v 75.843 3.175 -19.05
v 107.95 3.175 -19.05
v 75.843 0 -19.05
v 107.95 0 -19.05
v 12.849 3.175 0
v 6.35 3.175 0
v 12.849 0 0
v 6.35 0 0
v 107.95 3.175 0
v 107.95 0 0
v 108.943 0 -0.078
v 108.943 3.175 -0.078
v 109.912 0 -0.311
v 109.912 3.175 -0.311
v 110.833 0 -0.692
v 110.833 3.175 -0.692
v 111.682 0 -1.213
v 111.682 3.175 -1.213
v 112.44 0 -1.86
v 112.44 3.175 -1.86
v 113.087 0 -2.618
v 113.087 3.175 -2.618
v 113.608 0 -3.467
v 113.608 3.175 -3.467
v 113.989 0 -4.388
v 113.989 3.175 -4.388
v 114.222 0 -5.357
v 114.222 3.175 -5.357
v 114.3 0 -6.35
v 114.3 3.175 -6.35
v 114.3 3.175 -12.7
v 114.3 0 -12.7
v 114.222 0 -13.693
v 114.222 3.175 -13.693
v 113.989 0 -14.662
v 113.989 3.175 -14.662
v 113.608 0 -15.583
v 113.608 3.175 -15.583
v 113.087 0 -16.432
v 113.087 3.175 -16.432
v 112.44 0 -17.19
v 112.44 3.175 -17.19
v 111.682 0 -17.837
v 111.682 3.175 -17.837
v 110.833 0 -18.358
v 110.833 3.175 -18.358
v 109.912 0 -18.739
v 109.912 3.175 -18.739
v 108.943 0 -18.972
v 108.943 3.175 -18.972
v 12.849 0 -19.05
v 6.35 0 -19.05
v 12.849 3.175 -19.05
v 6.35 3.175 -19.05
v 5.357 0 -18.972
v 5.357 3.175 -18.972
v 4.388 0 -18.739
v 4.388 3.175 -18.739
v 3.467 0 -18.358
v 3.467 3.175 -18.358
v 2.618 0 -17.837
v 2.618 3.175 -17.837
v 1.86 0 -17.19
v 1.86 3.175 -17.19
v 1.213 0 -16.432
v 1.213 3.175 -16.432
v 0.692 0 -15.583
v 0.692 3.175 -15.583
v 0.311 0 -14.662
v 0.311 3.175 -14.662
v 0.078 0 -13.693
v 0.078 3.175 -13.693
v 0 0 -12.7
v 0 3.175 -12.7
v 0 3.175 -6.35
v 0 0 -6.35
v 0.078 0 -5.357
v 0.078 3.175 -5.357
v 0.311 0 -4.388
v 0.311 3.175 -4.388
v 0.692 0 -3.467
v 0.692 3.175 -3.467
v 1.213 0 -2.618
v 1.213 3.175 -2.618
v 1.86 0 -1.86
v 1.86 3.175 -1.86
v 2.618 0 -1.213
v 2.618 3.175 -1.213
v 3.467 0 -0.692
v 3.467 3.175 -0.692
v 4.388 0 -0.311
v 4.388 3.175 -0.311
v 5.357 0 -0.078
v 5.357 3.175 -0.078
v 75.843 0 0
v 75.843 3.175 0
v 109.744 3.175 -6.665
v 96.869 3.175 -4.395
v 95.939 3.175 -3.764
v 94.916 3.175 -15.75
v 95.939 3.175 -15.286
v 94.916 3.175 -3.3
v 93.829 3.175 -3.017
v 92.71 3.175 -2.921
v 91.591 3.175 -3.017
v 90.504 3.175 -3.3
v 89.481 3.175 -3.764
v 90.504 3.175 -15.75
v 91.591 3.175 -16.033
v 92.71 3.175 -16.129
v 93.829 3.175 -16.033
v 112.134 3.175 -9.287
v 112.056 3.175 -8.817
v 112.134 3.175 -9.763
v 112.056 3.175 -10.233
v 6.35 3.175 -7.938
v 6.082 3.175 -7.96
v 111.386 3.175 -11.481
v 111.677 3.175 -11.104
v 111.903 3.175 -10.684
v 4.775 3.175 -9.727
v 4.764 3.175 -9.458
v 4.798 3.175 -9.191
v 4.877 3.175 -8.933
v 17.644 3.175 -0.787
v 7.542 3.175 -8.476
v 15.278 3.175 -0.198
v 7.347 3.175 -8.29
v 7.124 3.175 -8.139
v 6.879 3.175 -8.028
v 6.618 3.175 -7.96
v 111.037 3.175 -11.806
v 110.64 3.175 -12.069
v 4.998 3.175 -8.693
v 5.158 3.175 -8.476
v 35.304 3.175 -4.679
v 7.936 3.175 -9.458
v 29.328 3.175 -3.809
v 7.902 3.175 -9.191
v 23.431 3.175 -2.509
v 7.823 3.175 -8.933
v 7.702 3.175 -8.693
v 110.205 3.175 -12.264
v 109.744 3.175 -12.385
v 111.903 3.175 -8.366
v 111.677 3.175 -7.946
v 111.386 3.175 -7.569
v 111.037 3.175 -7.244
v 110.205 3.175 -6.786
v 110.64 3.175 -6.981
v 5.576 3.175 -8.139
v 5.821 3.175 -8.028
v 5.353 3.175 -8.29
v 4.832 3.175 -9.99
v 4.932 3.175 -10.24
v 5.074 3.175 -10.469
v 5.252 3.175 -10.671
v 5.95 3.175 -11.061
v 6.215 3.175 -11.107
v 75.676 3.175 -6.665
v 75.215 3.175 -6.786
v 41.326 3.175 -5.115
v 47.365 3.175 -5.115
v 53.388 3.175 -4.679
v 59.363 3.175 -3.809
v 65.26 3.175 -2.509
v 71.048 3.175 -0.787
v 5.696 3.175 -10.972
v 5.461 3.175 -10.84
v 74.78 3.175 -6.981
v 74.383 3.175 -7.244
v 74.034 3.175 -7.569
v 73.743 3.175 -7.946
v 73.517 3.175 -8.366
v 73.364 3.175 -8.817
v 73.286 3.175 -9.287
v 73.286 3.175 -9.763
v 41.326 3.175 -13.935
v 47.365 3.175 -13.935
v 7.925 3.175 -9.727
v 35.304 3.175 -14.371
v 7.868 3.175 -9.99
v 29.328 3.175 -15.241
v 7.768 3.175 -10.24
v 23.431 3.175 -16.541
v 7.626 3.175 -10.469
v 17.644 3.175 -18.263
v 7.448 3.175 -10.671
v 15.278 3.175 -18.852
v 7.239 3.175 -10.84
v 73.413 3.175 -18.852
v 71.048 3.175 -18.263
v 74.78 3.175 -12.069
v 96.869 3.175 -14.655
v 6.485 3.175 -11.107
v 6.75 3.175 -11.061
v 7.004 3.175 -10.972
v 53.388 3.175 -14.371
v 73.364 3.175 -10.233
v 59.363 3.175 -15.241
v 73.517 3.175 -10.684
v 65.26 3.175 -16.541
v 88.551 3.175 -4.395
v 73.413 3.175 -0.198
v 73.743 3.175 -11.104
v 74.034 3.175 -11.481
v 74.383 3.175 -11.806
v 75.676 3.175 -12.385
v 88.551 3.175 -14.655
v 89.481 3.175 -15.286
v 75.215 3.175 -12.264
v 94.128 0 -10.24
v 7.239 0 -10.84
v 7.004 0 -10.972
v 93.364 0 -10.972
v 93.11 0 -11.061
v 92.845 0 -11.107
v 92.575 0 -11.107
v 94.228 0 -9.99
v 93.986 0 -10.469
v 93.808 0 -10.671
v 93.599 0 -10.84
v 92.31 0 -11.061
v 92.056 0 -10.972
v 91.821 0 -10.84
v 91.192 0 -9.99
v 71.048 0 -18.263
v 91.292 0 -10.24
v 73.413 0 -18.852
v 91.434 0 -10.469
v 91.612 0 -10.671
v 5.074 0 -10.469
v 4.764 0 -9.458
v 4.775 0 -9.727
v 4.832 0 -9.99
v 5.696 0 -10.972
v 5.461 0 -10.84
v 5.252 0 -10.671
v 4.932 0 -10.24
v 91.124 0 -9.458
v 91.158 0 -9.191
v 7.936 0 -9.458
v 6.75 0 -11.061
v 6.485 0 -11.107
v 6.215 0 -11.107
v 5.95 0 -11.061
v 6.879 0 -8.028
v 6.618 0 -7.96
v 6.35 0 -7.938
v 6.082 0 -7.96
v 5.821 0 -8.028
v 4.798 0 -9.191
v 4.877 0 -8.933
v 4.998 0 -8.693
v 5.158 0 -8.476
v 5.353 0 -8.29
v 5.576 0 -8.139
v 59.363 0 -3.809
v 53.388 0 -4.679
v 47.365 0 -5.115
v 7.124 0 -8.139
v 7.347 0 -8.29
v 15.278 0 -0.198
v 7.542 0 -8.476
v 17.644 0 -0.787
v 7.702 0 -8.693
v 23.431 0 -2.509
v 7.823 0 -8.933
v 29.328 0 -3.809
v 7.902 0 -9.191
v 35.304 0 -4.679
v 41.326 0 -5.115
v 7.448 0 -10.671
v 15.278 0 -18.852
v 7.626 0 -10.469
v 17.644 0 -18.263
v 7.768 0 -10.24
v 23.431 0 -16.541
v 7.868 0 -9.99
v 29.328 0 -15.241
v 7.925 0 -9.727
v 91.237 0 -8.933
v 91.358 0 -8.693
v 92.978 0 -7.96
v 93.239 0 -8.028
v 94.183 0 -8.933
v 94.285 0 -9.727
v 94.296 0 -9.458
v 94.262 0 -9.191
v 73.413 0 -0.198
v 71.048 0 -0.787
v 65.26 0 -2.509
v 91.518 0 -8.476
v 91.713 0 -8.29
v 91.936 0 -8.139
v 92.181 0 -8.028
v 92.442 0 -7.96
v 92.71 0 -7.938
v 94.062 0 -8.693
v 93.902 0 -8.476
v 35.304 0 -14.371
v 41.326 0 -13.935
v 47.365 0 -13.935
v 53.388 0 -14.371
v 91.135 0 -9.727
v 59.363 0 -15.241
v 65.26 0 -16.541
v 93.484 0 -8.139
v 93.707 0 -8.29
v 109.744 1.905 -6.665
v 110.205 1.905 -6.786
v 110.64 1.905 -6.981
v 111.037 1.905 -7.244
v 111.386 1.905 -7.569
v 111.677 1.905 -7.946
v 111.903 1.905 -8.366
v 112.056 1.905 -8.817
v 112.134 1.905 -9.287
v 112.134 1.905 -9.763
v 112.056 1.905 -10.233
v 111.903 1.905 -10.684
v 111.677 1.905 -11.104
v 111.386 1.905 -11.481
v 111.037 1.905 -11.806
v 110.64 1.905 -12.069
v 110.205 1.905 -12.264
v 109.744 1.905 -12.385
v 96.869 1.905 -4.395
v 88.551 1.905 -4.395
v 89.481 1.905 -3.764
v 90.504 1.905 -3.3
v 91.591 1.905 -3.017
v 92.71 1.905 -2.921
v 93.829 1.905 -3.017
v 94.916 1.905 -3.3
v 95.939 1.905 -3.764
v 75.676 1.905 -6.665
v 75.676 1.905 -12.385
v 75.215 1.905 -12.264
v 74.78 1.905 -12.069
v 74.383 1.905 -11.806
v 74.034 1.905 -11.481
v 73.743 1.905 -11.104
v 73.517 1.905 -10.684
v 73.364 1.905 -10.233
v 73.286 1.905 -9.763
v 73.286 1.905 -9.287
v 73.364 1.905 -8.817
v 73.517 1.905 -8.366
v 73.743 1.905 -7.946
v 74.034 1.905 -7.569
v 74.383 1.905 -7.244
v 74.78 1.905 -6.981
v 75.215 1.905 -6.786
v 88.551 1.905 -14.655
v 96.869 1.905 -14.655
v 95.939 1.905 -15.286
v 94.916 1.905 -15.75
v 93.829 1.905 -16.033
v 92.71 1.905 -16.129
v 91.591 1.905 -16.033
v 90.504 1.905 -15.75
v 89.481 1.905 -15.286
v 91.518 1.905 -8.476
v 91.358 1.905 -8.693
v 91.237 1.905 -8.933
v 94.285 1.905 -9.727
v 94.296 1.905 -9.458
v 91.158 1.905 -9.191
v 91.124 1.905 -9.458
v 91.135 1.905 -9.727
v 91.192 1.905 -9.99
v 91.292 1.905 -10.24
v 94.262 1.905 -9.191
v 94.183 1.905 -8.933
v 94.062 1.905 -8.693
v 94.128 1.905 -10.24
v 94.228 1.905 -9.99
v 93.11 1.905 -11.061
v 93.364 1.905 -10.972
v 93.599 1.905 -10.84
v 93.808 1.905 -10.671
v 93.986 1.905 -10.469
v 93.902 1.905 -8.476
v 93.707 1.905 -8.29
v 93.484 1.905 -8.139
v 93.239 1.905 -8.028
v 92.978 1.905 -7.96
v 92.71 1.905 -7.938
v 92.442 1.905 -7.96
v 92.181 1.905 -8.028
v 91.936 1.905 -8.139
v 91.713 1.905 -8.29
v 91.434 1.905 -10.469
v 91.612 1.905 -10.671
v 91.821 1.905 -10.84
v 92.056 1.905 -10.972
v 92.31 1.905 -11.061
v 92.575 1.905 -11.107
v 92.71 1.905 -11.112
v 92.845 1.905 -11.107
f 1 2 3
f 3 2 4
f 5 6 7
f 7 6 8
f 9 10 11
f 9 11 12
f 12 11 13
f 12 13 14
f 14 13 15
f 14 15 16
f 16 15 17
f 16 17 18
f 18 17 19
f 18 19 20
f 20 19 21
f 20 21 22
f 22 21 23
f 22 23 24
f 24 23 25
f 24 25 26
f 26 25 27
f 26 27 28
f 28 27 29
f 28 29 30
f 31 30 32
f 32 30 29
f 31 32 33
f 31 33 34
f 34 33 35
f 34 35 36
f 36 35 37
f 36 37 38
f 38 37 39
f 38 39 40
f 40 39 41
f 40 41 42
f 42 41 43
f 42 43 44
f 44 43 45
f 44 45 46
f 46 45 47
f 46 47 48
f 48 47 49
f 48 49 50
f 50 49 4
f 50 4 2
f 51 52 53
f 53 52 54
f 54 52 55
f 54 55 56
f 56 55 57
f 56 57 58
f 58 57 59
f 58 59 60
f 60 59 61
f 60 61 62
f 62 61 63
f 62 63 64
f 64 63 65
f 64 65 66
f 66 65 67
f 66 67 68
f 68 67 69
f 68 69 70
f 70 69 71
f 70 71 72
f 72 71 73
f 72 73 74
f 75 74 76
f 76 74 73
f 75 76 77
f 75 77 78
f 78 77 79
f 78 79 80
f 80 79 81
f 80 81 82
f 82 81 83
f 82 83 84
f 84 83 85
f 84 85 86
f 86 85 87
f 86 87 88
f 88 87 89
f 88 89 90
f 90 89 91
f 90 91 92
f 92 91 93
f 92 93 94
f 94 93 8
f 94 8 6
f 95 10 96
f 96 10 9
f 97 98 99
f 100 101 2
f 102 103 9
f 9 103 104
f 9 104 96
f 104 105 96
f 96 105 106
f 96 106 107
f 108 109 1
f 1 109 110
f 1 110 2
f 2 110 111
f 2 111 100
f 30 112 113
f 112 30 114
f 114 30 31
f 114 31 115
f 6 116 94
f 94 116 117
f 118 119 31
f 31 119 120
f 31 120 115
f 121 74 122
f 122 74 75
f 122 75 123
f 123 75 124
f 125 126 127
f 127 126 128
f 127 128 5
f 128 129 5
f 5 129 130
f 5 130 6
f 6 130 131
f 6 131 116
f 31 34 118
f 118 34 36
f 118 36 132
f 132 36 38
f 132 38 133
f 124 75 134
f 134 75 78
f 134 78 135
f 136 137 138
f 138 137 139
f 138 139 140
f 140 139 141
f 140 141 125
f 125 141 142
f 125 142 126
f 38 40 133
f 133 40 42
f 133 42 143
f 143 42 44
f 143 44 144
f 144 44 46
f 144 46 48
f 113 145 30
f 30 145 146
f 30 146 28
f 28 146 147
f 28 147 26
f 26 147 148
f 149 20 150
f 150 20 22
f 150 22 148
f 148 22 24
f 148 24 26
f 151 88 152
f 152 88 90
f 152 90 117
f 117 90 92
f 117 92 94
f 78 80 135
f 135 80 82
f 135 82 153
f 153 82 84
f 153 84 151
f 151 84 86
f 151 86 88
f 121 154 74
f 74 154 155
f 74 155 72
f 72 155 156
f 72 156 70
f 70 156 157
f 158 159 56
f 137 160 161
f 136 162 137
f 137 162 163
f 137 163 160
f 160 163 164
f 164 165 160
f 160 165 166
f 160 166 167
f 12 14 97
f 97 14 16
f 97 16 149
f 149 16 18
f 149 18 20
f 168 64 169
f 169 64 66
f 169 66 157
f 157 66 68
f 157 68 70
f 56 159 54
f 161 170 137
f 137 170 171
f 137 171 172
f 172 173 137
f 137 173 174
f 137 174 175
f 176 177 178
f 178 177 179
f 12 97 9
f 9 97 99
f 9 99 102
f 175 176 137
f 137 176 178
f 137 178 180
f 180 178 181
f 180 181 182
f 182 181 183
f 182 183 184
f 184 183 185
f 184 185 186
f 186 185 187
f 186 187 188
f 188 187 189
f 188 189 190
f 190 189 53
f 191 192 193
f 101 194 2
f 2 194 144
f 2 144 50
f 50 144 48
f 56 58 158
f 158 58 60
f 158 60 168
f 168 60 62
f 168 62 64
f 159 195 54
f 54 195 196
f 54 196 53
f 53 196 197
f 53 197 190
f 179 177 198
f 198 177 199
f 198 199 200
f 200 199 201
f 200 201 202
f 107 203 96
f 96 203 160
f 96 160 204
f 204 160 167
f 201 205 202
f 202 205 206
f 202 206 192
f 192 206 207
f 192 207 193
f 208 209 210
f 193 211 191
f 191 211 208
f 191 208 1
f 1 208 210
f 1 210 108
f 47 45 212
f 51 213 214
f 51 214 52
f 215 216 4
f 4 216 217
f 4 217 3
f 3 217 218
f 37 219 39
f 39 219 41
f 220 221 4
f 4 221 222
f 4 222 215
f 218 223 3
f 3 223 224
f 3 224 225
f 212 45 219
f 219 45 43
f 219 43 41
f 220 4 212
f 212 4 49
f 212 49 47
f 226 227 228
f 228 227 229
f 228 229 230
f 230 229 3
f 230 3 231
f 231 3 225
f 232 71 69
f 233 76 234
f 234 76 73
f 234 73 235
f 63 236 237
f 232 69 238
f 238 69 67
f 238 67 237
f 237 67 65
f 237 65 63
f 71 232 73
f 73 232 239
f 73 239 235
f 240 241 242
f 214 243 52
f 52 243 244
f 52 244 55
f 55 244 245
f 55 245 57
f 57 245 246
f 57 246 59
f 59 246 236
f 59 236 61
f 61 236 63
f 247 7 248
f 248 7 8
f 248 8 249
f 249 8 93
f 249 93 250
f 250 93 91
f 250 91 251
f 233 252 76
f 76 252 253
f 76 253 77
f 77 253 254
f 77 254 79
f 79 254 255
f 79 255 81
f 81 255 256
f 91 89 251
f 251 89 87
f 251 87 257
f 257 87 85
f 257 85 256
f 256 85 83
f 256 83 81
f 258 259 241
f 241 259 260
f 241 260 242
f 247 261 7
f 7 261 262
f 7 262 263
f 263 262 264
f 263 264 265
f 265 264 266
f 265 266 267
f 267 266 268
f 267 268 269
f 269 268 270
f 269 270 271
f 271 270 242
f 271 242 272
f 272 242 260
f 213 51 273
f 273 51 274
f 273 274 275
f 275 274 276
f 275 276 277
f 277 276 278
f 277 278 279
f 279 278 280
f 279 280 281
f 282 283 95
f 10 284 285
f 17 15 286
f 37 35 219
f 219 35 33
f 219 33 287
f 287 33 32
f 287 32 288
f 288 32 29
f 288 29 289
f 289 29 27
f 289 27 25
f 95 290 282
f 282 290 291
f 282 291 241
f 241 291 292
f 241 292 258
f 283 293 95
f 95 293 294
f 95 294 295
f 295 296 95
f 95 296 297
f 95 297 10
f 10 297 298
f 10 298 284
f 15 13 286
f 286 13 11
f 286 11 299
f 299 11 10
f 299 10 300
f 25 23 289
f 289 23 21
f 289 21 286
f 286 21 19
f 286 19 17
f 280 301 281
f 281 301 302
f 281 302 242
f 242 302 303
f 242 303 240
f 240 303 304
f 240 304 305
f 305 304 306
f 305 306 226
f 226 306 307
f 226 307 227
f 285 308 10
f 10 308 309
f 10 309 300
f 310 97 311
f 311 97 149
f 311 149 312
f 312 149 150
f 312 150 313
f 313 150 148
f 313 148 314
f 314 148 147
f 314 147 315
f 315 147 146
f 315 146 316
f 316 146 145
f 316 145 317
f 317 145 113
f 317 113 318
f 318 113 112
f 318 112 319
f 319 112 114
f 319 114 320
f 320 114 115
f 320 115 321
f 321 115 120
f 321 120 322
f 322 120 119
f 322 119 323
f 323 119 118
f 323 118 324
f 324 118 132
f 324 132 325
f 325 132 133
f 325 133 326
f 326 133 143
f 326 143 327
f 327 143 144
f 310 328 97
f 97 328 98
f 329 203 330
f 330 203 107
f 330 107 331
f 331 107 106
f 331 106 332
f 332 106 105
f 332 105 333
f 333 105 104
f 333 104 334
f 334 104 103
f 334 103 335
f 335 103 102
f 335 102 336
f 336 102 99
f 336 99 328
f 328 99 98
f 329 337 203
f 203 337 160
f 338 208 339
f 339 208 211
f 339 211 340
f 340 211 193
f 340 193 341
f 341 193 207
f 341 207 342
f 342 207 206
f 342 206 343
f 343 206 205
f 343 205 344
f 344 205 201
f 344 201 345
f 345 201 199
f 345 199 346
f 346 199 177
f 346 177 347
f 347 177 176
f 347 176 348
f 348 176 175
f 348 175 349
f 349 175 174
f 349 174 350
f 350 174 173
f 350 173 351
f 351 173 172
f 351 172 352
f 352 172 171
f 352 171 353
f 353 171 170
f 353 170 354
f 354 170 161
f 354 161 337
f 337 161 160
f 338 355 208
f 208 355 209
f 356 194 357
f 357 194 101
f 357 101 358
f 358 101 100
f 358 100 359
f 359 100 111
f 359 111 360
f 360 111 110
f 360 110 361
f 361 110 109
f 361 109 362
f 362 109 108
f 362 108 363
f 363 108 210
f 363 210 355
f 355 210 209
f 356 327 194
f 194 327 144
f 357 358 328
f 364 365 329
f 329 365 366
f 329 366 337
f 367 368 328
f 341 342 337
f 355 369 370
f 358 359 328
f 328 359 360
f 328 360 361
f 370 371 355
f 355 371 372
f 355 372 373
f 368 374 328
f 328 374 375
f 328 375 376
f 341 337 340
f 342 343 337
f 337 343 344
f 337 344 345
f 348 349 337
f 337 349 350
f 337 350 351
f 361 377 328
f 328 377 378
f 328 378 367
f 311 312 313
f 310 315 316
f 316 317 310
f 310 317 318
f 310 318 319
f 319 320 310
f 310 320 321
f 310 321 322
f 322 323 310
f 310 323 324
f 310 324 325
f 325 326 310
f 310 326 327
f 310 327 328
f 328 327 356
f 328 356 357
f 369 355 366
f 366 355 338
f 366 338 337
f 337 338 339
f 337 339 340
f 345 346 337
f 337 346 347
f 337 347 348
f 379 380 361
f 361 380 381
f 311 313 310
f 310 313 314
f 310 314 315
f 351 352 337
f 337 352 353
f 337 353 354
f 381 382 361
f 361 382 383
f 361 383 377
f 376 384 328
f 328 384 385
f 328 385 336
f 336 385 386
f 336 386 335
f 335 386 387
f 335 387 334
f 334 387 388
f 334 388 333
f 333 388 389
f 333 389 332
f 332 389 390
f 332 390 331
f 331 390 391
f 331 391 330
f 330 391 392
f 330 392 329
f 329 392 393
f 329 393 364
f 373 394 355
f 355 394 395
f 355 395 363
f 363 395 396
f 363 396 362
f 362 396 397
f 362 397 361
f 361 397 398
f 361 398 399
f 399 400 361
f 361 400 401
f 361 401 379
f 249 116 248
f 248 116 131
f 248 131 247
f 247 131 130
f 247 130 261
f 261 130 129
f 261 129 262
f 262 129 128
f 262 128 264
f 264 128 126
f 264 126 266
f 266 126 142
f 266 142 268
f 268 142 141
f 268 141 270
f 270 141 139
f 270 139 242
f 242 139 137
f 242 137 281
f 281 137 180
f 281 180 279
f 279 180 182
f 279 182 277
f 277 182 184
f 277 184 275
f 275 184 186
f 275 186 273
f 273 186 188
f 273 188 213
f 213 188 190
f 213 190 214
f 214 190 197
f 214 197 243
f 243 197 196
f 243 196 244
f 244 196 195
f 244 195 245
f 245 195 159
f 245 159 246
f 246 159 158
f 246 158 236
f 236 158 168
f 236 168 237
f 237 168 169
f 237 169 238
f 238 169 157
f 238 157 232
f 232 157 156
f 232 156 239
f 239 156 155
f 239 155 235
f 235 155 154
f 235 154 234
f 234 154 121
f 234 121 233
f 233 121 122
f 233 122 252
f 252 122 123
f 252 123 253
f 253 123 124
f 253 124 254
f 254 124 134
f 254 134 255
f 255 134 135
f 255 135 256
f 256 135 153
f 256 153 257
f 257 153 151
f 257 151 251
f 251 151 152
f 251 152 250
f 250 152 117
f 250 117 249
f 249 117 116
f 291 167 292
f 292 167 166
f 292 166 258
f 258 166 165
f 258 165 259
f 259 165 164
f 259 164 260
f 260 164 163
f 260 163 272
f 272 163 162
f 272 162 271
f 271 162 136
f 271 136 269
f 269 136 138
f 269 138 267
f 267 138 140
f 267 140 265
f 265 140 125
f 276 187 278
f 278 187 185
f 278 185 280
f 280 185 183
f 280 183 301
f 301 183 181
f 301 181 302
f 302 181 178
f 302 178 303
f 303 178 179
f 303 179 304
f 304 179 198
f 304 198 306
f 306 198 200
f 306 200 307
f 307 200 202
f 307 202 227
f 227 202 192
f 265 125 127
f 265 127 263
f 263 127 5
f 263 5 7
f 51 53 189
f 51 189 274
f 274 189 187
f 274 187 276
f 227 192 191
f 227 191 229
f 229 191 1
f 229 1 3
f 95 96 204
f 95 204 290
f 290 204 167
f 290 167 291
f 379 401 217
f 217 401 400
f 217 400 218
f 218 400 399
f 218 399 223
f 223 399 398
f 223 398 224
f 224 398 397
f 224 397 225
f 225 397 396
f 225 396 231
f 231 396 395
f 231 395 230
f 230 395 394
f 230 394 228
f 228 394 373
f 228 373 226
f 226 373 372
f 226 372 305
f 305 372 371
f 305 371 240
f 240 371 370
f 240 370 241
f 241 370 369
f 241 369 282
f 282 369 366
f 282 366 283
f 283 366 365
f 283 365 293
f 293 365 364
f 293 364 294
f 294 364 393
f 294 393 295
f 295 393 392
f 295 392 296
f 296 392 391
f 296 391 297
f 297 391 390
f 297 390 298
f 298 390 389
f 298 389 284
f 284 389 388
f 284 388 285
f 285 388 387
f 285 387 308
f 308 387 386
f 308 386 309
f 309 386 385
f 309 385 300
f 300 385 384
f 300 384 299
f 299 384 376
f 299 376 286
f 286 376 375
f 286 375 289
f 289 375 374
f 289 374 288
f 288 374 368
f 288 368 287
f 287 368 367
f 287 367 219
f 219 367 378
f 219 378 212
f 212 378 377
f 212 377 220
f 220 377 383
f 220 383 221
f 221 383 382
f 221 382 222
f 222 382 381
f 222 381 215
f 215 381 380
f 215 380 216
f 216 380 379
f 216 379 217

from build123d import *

# Parameters (mm, degrees)
BOSS_EXTRUDE1_DEPTH          = 3.175
CUT_EXTRUDE2_DEPTH           = 1.27
F_1_8_0_125_DIAMETER_HOLE1_D = 3.175
CUT_EXTRUDE3_DEPTH           = 116.920115273
FILLET1_R                    = 15
F_1_8_0_125_DIAMETER_HOLE2_D = 3.175


with BuildPart() as part:
    # Sketch1 → Boss-Extrude1 (new body)
    with BuildSketch(Plane(origin=(0, 0, 0), x_dir=(1, 0, 0), z_dir=(0, 1, 0))):
        with BuildLine():
            Line((6.35, 0), (107.95, 0))
            ThreePointArc((107.95, 0), (112.440128061, 1.859871939), (114.3, 6.35))
            Line((114.3, 6.35), (114.3, 12.7))
            ThreePointArc((114.3, 12.7), (112.440128061, 17.190128061), (107.95, 19.05))
            Line((107.95, 19.05), (6.35, 19.05))
            ThreePointArc((6.35, 19.05), (1.859871939, 17.190128061), (0, 12.7))
            Line((0, 12.7), (0, 6.35))
            ThreePointArc((0, 6.35), (1.859871939, 1.859871939), (6.35, 0))
        make_face()
    extrude(amount=BOSS_EXTRUDE1_DEPTH)

    # Sketch4 → Cut-Extrude2 (cut)
    with BuildSketch(Plane(origin=(0, 3.175, 0), x_dir=(1, 0, 0), z_dir=(0, 1, 0))):
        with BuildLine():
            Line((109.744274308, 12.384881715), (96.868569632, 14.655215845))
            ThreePointArc((96.868569632, 14.655215845), (92.71, 16.129), (88.551430368, 14.655215845))
            Line((88.551430368, 14.655215845), (75.675725692, 12.384881715))
            ThreePointArc((75.675725692, 12.384881715), (73.276, 9.525), (75.675725692, 6.665118285))
            Line((75.675725692, 6.665118285), (88.551430368, 4.394784155))
            ThreePointArc((88.551430368, 4.394784155), (92.71, 2.921), (96.868569632, 4.394784155))
            Line((96.868569632, 4.394784155), (109.744274308, 6.665118285))
            ThreePointArc((109.744274308, 6.665118285), (112.144, 9.525), (109.744274308, 12.384881715))
        make_face()
    extrude(amount=-CUT_EXTRUDE2_DEPTH, mode=Mode.SUBTRACT)

    # 1/8 (0.125) Diameter Hole1 (through all)
    with Locations(Plane(origin=(0, 3.175, 0), x_dir=(1, 0, 0), z_dir=(0, 1, 0))):
        with Locations((6.35, 9.525)):
            Hole(F_1_8_0_125_DIAMETER_HOLE1_D / 2)

    # Sketch7 → Cut-Extrude3 (cut, through all)
    with BuildSketch(Plane(origin=(0, 3.175, 0), x_dir=(1, 0, 0), z_dir=(0, 1, 0))):
        with BuildLine():
            Line((15.415253533, 19.05), (73.276, 19.05))
            ThreePointArc((73.276, 19.05), (44.345626766, 13.880082039), (15.415253533, 19.05))
        make_face()
        with BuildLine():
            Line((73.276, 0), (15.415253533, 0))
            ThreePointArc((15.415253533, 0), (44.345626766, 5.169917961), (73.276, 0))
        make_face()
    extrude(amount=-CUT_EXTRUDE3_DEPTH, mode=Mode.SUBTRACT)

    # Fillet1
    fillet1_edges = [part.edges().sort_by_distance(p)[0] for p in [
        (73.276, 1.5875, -19.05),
        (15.415253533, 1.5875, -19.05),
        (15.415253533, 1.5875, 0),
        (73.276, 1.5875, 0),
    ]]
    fillet(fillet1_edges, radius=FILLET1_R)

    # 1/8 (0.125) Diameter Hole2 (through all)
    with Locations(Plane(origin=(0, 3.175, 0), x_dir=(1, 0, 0), z_dir=(0, 1, 0))):
        with Locations((92.71, 9.525)):
            Hole(F_1_8_0_125_DIAMETER_HOLE2_D / 2)


solid = part.part
